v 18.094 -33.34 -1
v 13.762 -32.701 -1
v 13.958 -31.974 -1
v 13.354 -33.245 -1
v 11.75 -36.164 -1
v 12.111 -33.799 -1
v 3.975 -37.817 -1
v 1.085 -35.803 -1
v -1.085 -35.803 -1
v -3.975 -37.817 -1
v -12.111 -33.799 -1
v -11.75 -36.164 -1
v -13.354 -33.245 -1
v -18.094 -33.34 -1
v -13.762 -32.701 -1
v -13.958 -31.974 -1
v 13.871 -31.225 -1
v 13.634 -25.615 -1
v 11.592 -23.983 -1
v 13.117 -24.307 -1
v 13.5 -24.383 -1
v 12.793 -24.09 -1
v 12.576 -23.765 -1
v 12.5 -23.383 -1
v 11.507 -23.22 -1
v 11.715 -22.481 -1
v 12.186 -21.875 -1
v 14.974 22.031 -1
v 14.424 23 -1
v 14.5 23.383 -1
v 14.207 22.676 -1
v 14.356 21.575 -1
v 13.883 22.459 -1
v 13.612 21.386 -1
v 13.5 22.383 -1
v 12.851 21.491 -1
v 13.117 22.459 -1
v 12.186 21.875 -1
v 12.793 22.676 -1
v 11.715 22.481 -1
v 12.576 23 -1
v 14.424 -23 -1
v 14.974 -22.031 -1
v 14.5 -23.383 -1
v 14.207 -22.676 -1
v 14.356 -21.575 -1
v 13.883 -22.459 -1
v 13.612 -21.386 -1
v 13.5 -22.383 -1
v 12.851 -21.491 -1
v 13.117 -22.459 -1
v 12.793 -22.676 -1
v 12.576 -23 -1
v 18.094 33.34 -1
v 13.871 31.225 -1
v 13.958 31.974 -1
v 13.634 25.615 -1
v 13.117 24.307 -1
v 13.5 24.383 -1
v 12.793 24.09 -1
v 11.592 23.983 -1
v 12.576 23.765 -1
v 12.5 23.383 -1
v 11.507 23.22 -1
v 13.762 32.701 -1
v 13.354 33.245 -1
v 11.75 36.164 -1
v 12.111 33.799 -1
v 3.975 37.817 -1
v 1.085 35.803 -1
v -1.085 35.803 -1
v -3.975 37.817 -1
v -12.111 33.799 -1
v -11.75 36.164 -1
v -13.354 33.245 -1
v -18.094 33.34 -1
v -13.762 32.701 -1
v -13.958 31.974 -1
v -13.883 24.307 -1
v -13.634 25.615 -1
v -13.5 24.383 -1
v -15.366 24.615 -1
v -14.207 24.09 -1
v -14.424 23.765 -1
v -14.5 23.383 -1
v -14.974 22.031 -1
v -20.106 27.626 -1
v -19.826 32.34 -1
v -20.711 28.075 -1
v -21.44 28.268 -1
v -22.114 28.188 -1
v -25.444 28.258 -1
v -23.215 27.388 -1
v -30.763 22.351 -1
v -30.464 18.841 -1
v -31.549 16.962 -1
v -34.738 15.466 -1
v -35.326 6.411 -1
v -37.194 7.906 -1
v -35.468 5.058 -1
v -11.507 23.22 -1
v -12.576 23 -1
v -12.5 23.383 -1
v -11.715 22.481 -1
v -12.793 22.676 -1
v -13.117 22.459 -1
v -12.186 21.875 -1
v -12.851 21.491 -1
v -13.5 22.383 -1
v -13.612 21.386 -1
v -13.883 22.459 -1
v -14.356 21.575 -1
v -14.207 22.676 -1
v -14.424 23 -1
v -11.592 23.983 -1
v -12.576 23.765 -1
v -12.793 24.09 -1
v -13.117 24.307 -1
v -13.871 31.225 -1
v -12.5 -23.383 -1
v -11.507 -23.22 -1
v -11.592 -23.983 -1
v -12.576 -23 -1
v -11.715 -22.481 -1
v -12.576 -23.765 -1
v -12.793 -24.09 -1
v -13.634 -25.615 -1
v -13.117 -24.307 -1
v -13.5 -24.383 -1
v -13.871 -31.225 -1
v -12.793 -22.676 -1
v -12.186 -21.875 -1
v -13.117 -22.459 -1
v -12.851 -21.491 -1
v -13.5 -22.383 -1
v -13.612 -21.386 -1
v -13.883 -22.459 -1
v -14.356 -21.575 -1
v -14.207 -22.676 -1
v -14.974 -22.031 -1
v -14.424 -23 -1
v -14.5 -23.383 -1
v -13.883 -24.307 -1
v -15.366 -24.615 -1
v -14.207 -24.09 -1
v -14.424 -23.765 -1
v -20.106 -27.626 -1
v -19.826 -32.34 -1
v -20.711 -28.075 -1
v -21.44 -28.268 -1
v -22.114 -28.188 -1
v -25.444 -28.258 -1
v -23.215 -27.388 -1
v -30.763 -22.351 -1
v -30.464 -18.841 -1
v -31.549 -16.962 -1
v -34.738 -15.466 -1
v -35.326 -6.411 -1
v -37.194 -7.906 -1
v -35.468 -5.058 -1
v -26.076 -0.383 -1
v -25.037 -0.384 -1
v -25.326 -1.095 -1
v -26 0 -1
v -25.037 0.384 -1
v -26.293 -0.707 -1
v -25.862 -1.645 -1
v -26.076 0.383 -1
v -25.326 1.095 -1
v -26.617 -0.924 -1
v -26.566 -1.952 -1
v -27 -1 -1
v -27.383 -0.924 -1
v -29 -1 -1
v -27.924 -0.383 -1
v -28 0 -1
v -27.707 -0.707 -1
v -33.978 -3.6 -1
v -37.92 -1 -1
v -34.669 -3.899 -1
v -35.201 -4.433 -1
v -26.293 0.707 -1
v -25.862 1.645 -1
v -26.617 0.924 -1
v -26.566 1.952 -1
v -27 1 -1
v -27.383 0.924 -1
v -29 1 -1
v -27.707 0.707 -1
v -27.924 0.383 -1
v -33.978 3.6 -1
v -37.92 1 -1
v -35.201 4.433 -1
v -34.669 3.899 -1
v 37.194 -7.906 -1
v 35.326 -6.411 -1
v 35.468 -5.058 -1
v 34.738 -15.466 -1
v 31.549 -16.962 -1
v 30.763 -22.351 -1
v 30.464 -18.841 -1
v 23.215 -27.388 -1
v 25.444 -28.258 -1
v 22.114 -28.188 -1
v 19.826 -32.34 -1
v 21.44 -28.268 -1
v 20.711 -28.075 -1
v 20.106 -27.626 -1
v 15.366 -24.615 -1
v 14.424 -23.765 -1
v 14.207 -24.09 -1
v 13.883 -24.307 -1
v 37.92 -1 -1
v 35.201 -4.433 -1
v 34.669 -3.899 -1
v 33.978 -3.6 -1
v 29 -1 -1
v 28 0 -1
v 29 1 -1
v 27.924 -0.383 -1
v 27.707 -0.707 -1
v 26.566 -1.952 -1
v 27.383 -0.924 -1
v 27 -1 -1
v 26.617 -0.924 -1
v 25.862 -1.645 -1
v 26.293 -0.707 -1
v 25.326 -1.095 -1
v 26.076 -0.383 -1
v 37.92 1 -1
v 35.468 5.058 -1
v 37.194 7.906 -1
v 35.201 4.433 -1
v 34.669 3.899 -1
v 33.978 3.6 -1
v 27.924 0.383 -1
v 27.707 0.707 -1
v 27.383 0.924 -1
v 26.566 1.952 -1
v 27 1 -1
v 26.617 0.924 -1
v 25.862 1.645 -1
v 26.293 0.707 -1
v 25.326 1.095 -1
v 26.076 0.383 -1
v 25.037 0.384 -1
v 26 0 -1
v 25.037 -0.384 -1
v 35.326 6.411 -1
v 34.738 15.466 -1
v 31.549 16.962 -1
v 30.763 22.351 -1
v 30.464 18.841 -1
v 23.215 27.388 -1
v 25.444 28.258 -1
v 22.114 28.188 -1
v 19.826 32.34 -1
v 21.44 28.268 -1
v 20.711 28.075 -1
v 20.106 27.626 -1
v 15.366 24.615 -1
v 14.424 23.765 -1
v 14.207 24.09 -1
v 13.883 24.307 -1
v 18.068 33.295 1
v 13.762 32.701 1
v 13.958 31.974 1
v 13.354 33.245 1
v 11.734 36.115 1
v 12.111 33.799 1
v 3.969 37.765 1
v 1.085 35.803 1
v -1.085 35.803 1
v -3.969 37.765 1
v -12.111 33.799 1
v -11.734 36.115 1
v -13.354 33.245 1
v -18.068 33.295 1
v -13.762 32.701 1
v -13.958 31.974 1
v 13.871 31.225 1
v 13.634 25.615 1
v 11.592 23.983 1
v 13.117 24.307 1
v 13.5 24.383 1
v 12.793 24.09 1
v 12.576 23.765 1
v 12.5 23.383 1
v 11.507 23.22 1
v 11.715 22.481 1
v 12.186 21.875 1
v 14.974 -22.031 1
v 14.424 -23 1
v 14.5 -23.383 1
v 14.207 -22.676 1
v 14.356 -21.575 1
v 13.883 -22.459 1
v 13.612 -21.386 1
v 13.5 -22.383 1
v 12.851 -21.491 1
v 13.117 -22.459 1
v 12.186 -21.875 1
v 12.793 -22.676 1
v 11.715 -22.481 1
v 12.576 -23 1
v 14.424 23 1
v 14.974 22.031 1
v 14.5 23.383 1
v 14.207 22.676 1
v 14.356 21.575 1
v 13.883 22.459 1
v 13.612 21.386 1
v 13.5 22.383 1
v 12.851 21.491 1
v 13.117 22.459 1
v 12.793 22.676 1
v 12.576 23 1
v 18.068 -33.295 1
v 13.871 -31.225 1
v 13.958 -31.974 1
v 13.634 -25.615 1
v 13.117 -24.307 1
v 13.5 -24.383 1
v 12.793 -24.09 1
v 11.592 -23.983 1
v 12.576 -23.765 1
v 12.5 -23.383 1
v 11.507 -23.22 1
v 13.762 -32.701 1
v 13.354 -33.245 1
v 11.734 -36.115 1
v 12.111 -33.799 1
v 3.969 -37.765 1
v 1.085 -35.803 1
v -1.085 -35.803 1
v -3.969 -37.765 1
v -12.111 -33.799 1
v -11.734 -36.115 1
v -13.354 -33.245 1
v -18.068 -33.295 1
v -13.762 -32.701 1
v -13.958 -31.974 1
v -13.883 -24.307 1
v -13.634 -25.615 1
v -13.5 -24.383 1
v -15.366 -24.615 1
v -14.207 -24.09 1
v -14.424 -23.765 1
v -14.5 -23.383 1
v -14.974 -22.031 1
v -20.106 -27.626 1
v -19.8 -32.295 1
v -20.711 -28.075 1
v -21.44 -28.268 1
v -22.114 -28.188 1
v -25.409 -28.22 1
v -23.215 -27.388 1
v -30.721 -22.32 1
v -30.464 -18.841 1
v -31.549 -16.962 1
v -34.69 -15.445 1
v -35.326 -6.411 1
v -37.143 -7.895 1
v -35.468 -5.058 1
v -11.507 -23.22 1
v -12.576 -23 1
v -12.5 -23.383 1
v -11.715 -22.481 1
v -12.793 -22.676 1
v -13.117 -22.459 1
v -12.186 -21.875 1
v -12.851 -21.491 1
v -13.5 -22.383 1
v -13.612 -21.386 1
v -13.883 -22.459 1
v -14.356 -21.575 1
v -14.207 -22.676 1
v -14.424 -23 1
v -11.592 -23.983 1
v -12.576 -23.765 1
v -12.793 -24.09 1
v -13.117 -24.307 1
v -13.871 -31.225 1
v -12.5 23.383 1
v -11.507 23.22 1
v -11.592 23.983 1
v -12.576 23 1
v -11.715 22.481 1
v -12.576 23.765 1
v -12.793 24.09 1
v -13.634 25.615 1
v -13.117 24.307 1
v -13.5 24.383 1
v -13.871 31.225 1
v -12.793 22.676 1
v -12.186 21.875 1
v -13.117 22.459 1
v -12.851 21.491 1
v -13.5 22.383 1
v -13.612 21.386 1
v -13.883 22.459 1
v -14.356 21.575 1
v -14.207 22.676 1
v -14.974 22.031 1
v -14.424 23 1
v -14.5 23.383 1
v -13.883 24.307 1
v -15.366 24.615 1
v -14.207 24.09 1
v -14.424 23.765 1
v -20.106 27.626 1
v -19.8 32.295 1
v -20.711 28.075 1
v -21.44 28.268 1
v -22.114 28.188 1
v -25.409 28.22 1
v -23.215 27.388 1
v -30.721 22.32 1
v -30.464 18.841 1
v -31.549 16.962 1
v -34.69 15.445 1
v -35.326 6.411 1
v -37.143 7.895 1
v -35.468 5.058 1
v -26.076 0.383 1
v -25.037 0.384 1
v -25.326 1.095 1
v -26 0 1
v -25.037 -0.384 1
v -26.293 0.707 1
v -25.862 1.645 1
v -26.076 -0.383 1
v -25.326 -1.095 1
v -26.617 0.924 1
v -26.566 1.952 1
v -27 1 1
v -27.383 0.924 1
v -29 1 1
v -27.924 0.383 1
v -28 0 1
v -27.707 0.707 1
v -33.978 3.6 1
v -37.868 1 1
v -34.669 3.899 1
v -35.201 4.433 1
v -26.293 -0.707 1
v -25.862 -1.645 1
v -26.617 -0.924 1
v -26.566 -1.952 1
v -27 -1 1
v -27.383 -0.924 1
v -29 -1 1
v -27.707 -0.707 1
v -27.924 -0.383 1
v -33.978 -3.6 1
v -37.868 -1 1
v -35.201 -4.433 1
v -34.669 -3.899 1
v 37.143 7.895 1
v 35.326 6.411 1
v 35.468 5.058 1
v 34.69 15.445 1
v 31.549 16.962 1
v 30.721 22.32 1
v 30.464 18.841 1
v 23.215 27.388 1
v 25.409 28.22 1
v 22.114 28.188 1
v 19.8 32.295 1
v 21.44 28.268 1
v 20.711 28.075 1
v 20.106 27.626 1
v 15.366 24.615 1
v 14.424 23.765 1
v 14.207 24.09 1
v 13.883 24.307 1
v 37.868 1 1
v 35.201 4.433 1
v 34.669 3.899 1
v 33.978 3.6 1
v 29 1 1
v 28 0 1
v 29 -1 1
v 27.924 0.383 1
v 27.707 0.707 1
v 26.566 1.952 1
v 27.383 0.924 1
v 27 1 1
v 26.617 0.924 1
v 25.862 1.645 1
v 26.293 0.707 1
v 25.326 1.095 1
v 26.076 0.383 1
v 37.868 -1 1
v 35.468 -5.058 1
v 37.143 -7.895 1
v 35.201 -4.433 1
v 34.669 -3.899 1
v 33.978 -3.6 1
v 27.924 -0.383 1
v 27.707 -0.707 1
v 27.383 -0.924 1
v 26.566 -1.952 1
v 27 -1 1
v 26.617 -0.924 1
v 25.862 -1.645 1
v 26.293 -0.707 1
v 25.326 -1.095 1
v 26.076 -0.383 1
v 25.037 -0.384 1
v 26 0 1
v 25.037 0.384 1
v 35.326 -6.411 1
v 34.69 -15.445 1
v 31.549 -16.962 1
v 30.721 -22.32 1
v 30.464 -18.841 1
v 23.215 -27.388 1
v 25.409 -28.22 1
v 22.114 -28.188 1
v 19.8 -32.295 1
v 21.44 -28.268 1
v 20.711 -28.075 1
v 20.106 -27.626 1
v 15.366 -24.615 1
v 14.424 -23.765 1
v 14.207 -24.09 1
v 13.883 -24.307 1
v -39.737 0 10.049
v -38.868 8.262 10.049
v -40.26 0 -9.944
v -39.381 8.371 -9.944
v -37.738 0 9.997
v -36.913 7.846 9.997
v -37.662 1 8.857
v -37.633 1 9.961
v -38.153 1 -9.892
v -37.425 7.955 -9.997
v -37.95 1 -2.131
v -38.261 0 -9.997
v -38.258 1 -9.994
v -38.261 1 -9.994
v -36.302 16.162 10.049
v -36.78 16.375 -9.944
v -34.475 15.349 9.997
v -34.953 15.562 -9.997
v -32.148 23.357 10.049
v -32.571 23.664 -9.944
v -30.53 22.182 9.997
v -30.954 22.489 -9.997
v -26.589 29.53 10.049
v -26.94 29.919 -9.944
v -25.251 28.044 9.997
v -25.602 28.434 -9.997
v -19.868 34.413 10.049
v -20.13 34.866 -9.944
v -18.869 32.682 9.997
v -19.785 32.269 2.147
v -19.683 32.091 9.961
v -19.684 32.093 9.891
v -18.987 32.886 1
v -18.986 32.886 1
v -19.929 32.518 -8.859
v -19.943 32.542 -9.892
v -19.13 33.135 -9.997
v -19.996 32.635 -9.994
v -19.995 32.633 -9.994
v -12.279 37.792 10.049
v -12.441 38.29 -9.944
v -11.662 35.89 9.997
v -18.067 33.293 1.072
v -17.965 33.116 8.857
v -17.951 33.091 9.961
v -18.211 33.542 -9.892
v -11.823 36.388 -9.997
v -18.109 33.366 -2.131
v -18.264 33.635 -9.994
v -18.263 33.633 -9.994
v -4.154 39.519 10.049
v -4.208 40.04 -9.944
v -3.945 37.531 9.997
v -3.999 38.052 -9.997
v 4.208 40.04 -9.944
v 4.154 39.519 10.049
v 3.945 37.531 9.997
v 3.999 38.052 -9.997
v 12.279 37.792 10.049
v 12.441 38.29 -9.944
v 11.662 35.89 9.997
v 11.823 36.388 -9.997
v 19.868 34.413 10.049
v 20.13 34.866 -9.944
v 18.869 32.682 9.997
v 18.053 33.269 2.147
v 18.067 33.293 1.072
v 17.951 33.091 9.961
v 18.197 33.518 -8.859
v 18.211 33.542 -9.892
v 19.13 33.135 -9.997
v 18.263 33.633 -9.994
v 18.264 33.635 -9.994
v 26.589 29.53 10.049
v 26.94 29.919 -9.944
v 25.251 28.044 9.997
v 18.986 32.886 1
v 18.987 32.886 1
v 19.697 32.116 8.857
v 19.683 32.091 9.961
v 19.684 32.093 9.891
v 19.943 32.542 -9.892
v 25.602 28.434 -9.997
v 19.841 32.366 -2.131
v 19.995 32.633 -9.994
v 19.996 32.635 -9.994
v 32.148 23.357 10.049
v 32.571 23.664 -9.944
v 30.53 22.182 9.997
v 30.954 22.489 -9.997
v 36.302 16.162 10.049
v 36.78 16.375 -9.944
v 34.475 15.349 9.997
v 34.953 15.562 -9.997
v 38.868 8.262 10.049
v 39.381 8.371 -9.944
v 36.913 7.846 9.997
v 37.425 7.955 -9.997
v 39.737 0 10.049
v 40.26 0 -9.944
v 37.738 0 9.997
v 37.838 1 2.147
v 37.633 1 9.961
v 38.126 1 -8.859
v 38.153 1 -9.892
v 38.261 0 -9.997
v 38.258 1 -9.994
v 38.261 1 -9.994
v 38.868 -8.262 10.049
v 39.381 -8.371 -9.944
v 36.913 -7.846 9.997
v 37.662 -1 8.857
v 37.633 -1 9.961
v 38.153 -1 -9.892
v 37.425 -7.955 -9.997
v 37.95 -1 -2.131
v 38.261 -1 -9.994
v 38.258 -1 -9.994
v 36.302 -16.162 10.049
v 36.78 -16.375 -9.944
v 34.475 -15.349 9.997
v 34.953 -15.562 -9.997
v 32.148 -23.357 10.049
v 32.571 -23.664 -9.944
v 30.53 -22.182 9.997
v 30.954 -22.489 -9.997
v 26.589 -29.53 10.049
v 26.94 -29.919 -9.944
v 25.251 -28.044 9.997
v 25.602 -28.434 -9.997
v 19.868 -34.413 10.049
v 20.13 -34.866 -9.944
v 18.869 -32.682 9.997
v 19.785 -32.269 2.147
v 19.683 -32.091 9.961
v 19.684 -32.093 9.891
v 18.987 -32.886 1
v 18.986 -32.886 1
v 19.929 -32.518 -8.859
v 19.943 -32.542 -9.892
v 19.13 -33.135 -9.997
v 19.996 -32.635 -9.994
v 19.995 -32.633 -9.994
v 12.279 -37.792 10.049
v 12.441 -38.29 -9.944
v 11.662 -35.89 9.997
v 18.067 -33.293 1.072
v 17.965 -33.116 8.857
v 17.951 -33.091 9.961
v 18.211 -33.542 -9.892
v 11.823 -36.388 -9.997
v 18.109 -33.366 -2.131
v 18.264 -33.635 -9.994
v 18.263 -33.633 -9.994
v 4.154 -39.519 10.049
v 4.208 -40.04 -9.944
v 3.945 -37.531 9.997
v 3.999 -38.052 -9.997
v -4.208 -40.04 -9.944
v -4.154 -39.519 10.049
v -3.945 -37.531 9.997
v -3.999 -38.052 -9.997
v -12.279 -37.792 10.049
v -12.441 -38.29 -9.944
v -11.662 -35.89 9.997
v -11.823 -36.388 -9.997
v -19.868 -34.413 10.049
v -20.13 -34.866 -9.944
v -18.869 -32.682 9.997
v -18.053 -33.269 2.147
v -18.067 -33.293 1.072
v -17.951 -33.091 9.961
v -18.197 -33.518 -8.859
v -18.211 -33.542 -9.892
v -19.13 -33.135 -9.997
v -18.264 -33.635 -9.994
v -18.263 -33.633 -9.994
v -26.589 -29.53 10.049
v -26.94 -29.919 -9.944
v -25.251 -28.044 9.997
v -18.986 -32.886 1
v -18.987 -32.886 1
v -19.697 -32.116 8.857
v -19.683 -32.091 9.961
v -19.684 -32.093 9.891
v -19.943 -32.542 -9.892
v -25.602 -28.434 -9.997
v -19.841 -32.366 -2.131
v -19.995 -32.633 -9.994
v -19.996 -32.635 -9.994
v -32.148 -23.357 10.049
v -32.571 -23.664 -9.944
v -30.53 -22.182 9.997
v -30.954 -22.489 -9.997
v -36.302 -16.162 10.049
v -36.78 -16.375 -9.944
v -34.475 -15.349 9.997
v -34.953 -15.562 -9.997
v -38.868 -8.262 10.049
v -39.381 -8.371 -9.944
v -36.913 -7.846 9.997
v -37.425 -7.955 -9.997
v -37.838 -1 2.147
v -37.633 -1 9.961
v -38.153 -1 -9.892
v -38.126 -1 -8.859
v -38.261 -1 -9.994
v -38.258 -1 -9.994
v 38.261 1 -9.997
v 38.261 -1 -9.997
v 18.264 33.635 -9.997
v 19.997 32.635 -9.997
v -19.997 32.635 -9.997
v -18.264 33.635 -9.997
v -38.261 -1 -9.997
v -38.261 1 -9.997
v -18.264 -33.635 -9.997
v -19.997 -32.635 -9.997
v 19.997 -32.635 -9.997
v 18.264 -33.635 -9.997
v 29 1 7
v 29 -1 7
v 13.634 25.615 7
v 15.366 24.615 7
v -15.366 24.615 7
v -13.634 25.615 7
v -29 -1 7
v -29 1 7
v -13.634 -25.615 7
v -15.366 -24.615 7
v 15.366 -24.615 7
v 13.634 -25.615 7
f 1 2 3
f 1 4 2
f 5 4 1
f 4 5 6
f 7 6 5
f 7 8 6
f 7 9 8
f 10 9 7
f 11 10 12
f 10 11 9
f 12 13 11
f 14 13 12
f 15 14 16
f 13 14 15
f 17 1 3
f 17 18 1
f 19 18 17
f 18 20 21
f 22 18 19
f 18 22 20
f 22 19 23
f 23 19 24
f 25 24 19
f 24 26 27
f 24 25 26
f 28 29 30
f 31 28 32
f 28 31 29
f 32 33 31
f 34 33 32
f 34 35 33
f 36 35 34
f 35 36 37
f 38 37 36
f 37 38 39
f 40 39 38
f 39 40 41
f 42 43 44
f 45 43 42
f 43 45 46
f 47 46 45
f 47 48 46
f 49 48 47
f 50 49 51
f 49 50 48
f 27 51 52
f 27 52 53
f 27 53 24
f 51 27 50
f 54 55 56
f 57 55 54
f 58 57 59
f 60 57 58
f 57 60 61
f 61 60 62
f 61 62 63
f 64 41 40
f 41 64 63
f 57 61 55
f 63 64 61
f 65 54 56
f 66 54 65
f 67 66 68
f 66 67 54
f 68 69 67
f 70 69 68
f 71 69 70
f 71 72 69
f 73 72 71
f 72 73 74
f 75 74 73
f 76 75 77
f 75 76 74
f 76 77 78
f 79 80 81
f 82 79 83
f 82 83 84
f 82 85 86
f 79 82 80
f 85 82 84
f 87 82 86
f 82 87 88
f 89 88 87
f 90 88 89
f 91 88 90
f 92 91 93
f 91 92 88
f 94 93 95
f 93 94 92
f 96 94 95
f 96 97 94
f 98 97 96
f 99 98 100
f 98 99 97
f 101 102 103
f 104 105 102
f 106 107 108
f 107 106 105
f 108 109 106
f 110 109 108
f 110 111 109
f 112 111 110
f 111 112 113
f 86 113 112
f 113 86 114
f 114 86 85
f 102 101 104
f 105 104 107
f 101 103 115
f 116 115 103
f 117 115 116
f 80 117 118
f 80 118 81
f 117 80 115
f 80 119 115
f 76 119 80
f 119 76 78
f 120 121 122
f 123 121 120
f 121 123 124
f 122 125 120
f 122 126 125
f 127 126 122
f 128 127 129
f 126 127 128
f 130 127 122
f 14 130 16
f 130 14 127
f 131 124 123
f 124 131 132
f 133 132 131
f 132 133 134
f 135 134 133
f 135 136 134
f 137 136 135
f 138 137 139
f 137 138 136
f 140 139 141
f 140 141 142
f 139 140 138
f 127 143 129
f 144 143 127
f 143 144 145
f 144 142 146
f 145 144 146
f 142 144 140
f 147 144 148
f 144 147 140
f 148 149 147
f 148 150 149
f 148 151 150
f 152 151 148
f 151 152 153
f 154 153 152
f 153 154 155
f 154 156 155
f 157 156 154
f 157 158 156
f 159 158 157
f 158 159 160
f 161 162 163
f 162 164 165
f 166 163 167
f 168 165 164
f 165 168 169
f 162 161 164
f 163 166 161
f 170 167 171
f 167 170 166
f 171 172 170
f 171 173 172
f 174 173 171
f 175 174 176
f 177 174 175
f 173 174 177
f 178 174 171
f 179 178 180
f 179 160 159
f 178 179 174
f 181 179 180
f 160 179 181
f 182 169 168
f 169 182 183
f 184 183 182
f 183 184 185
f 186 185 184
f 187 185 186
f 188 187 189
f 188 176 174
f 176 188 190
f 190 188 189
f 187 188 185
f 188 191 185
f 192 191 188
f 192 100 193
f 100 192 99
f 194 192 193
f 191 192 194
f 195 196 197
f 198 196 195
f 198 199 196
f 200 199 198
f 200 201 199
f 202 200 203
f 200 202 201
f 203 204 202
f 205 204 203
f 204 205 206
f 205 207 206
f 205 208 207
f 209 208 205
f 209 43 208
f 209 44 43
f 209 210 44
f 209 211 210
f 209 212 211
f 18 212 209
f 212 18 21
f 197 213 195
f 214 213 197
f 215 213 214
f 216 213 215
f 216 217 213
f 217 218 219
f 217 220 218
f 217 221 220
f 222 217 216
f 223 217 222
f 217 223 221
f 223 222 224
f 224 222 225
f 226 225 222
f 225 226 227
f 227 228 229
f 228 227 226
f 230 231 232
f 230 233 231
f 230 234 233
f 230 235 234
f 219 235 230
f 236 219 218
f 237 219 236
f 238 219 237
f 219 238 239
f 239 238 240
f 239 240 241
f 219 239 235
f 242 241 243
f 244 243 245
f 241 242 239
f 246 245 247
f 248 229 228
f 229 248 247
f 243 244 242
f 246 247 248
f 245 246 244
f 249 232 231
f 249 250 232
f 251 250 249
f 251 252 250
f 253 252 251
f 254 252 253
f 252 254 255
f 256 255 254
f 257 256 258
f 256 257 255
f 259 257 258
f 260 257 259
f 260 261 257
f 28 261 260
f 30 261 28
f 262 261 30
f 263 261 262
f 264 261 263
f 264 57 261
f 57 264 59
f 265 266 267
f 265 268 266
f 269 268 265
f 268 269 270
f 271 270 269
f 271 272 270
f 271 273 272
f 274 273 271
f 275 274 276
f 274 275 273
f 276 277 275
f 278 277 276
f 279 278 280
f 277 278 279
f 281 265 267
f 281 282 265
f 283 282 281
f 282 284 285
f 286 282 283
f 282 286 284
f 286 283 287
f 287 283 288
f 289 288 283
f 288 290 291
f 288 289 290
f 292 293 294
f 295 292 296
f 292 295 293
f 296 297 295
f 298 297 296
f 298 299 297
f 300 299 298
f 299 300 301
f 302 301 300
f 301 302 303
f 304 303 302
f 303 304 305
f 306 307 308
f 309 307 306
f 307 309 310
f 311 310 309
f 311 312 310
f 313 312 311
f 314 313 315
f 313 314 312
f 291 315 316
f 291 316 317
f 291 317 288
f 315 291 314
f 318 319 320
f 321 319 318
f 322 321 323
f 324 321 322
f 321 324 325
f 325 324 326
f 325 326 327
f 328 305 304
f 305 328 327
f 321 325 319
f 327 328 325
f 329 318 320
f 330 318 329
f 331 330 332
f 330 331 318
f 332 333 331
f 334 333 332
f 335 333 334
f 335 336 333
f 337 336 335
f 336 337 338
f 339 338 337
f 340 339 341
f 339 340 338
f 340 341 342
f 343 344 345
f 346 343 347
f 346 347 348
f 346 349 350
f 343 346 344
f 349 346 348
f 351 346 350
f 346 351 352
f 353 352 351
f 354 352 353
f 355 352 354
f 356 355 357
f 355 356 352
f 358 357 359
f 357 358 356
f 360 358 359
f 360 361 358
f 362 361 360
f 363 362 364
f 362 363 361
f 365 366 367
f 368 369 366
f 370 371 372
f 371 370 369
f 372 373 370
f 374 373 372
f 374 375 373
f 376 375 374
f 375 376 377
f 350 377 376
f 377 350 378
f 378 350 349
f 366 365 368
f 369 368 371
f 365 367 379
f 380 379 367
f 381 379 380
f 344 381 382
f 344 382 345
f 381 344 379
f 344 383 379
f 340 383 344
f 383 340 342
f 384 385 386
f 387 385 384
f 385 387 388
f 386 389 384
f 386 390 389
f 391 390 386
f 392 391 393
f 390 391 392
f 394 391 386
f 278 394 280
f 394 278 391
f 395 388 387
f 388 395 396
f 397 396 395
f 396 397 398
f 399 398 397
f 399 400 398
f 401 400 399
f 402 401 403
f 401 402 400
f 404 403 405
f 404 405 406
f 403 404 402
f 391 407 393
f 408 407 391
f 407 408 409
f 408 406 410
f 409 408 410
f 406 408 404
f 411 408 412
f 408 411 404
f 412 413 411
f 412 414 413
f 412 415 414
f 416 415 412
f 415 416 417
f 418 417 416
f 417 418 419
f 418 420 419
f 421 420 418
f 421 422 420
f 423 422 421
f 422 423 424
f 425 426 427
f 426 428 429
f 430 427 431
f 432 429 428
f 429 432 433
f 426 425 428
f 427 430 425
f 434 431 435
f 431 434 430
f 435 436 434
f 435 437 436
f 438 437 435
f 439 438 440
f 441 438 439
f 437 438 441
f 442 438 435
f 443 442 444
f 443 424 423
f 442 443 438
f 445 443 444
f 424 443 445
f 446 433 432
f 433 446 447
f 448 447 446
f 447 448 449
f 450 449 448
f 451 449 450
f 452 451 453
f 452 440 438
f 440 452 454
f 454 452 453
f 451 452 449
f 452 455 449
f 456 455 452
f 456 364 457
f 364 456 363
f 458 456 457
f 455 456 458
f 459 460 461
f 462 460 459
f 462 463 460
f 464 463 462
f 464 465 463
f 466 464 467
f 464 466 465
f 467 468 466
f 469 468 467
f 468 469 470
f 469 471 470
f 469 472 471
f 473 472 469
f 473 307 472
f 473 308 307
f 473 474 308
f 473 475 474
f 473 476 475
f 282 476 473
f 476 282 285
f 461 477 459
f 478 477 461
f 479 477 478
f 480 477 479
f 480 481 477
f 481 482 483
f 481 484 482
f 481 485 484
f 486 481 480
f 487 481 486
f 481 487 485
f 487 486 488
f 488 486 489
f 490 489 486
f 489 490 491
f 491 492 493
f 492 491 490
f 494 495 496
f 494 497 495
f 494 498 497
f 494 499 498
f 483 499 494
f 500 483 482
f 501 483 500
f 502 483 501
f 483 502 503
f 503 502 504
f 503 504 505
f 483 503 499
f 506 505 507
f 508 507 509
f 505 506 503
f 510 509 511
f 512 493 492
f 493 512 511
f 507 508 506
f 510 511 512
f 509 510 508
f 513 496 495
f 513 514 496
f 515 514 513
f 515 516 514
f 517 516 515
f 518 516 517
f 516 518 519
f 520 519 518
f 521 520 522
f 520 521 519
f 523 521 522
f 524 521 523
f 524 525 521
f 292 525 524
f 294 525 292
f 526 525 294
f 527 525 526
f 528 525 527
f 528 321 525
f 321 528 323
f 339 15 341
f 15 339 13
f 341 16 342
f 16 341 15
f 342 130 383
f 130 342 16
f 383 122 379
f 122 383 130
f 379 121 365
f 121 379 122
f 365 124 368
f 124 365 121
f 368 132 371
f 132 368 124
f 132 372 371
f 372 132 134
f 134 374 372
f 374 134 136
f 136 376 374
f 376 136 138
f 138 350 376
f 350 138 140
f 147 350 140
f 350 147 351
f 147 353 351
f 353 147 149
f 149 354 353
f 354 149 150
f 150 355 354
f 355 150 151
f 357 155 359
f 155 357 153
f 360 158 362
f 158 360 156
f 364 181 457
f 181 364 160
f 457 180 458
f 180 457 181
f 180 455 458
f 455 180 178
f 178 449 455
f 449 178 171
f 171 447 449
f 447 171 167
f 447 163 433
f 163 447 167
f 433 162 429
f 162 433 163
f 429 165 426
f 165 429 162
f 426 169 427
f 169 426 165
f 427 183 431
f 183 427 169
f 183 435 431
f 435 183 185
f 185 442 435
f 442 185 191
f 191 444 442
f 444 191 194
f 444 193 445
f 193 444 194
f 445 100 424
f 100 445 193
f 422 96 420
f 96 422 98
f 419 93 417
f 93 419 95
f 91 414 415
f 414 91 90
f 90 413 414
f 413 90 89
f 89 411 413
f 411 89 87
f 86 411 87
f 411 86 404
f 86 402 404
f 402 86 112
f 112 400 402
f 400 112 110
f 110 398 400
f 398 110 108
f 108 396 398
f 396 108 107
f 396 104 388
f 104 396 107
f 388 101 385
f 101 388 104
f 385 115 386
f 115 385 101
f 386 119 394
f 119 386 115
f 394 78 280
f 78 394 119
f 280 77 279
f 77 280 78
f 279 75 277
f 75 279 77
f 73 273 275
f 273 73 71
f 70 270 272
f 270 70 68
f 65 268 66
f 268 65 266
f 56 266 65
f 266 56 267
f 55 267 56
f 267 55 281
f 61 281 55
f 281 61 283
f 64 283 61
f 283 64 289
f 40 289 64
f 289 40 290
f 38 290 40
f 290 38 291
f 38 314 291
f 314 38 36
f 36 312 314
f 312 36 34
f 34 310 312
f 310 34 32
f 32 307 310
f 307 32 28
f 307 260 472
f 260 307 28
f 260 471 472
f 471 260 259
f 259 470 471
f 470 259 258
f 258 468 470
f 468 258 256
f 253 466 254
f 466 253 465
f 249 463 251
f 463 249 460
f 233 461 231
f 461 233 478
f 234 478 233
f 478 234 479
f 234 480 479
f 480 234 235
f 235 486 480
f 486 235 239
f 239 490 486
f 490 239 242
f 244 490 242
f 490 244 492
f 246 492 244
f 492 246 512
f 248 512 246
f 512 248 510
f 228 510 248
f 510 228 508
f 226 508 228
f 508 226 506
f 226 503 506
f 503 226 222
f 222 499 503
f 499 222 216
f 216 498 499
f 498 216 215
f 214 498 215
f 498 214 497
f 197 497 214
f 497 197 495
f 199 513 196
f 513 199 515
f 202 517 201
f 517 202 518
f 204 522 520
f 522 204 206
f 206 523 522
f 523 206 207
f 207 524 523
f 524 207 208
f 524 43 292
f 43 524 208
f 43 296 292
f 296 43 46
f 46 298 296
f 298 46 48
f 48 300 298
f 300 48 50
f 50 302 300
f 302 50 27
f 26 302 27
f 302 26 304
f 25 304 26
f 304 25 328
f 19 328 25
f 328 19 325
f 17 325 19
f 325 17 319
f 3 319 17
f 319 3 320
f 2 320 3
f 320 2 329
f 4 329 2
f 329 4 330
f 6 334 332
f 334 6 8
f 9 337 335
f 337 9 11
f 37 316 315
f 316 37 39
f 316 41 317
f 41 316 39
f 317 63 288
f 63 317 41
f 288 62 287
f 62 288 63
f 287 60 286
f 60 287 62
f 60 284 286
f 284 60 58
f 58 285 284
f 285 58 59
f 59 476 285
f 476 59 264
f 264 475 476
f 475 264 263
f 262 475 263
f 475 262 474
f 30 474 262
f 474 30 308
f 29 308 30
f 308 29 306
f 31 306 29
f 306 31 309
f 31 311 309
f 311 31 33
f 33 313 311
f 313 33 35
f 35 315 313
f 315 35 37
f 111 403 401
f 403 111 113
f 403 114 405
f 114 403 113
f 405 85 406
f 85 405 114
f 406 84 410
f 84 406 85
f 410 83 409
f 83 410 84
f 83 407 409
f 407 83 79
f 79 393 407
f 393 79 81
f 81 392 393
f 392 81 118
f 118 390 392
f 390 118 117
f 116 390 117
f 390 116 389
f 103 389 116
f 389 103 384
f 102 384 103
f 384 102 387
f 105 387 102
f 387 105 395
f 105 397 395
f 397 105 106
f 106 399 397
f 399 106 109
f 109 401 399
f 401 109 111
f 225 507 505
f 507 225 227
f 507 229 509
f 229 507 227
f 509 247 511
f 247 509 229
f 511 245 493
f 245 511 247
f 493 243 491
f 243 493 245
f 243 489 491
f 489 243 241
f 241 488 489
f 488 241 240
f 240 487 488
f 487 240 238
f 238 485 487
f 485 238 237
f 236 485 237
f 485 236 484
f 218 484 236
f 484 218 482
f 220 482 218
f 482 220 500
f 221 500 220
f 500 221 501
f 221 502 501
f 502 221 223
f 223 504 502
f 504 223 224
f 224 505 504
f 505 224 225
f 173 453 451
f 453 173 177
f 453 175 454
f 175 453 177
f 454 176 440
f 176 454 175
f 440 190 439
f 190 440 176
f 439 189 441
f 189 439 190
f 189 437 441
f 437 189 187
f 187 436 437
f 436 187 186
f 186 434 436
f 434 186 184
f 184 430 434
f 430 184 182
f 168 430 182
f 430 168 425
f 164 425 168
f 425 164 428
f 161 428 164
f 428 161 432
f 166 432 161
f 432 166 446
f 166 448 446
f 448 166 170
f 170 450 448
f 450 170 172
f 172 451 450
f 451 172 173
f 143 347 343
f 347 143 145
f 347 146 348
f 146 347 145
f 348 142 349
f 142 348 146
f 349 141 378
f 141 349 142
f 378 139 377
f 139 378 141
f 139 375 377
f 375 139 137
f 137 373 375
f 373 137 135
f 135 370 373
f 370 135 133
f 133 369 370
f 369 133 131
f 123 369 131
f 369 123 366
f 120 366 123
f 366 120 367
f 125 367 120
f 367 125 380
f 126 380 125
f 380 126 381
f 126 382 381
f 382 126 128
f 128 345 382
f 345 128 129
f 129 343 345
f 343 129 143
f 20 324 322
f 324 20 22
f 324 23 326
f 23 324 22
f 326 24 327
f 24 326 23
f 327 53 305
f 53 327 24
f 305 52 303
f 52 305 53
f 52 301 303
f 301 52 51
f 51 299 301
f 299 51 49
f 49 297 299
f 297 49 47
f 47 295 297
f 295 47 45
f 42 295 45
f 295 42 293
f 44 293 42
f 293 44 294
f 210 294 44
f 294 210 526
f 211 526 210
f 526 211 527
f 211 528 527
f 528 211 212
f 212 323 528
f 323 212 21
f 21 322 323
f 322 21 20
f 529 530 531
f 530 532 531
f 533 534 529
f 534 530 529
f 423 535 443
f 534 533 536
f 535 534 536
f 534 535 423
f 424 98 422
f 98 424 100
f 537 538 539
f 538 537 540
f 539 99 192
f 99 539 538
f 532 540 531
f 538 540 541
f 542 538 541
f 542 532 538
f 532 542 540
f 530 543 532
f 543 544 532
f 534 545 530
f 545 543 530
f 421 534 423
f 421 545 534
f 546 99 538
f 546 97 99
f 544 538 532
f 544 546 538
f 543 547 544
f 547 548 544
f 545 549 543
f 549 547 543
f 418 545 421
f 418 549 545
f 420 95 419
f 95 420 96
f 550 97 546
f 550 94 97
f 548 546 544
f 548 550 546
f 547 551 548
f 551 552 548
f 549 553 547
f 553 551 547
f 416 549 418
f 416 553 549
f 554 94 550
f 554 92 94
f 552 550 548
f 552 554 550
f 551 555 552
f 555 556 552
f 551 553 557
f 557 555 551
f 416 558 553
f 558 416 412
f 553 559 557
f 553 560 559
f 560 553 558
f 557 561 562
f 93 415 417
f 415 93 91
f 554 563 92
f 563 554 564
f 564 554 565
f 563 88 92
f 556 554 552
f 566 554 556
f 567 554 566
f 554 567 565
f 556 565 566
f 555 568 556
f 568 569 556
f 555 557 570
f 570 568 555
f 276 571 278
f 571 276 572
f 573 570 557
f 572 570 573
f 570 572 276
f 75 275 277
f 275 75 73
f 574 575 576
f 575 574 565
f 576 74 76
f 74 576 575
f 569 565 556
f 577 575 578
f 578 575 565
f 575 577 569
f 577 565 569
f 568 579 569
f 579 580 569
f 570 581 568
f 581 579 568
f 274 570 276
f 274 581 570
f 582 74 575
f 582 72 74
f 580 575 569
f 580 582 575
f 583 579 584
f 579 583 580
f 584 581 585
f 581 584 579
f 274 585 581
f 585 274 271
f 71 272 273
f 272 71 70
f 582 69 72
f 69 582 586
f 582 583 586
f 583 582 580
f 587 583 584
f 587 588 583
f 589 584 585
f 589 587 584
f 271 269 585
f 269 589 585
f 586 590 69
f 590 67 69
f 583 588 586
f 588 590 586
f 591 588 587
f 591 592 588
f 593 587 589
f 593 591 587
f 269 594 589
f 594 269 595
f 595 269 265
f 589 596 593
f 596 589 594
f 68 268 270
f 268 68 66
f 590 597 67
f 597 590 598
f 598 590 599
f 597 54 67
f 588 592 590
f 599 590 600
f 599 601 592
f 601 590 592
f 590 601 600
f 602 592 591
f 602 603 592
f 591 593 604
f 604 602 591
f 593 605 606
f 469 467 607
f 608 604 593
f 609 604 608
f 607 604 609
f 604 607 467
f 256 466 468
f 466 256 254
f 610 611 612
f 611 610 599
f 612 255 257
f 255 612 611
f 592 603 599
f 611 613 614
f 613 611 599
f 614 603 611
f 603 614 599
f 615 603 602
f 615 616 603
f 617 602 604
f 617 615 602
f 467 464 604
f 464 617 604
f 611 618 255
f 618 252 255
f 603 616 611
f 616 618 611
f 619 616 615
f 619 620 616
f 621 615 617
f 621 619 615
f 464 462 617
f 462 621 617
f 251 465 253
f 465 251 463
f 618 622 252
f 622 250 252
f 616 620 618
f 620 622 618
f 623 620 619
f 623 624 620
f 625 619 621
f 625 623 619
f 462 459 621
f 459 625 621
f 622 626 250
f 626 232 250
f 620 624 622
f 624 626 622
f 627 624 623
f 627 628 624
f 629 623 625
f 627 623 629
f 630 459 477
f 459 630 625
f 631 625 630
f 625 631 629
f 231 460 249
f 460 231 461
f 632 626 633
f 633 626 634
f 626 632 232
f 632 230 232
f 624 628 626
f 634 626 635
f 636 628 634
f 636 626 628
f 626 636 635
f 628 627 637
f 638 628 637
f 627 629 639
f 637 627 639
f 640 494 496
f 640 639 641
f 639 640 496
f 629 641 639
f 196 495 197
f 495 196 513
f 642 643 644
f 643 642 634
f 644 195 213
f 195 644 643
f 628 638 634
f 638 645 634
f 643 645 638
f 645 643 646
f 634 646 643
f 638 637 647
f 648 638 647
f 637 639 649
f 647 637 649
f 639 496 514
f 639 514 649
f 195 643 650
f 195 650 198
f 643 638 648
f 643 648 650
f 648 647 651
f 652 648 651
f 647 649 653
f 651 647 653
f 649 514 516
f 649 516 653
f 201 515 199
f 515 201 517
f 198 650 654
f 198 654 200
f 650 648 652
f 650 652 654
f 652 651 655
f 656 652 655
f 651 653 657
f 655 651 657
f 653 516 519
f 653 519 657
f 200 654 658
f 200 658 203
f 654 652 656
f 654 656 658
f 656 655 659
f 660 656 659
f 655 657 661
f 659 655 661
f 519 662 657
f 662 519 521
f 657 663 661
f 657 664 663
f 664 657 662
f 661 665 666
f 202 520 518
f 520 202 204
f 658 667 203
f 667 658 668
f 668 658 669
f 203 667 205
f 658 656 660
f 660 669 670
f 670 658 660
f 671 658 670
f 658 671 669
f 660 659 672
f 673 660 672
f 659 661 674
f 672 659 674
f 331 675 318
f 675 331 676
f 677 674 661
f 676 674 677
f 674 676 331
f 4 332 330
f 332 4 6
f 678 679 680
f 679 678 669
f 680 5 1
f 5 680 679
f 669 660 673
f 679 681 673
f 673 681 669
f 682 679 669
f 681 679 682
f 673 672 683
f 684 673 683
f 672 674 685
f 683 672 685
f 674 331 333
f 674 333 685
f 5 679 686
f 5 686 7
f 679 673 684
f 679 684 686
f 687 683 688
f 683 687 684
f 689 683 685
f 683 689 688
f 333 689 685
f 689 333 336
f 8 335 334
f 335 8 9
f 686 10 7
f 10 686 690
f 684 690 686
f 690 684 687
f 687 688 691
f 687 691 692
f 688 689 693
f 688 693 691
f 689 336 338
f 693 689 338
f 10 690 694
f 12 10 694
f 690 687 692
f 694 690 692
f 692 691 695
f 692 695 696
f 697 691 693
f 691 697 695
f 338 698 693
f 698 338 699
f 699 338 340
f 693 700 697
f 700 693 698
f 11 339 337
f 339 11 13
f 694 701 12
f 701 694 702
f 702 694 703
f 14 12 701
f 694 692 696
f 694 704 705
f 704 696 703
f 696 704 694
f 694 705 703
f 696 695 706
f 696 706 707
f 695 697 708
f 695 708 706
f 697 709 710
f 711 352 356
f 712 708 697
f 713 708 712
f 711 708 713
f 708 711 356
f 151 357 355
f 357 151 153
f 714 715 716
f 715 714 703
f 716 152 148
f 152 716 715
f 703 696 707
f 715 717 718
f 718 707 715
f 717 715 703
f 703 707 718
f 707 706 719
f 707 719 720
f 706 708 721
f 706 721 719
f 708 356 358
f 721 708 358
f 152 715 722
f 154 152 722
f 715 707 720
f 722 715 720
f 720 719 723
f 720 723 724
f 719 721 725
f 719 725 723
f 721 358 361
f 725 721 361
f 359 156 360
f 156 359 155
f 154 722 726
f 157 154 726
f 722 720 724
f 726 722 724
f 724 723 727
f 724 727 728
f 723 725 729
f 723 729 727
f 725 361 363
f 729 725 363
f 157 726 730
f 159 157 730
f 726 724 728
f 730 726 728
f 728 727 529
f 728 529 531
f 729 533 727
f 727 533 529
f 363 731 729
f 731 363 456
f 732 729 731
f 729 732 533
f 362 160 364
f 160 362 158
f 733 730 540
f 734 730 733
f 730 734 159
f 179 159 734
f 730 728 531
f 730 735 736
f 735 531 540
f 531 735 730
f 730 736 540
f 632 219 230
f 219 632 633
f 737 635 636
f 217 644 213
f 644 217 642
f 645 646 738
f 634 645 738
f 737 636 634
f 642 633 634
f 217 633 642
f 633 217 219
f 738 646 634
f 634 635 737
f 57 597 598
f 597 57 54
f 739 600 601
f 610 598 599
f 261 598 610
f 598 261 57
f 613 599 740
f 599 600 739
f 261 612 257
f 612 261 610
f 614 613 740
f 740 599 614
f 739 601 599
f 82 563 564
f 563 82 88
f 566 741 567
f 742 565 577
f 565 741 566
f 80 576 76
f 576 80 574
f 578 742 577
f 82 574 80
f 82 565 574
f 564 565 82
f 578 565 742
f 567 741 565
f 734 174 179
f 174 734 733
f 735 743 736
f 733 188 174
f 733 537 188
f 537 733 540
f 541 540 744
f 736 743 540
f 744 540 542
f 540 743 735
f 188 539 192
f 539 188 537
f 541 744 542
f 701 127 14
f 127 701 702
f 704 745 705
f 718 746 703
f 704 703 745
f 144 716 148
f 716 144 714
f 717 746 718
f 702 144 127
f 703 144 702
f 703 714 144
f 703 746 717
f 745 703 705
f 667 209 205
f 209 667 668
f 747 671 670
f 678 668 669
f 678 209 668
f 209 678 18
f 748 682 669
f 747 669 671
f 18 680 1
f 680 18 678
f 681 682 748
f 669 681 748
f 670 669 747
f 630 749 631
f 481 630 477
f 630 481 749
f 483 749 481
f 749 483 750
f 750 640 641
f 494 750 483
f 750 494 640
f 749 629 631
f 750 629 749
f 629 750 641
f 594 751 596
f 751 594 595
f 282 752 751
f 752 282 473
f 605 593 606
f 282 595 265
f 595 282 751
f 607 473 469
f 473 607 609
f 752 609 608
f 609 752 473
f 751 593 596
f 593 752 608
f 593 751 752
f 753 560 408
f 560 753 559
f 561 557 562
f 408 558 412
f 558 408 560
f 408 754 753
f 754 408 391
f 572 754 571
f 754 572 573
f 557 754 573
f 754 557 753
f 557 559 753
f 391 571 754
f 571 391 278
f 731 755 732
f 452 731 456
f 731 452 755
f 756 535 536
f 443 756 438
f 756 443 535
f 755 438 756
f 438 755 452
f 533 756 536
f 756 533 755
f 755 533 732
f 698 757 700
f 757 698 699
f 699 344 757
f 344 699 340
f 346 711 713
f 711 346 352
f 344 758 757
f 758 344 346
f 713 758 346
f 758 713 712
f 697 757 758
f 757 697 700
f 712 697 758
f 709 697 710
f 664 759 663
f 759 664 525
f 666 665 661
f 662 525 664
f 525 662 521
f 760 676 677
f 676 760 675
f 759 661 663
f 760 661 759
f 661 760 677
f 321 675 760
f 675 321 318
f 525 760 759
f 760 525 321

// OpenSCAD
// Generated by Parametrix
ca_vaxis_holder_facePetal_0 = [ [ 37.9731, 0.0000 ],[ 35.0826, 14.5317 ],[ 26.8511, 26.8511 ],[ 14.5317, 35.0826 ],[ 0.0000, 37.9731 ],[ -14.5317, 35.0826 ],[ -26.8511, 26.8511 ],[ -35.0826, 14.5317 ],[ -37.9731, 0.0000 ],[ -35.0826, -14.5317 ],[ -26.8511, -26.8511 ],[ -14.5317, -35.0826 ],[ -0.0000, -37.9731 ],[ 14.5317, -35.0826 ],[ 26.8511, -26.8511 ],[ 35.0826, -14.5317 ],[ 37.9731, 0.0000 ] ];
cb_vaxis_holder_facePetal_0 = [  0, 1, 2, 3, 4, 5, 6, 7, 8, 9, 10, 11, 12, 13, 14, 15, 16 ];
ca_vaxis_holder_facePetal_1 = [ [ 33.9776, -3.6000 ],[ 26.5660, -1.9523 ],[ 25.8624, -1.6450 ],[ 25.3265, -1.0951 ],[ 25.0372, -0.3839 ],[ 25.0372, 0.3839 ],[ 25.3265, 1.0951 ],[ 25.8624, 1.6450 ],[ 26.5660, 1.9523 ],[ 33.9776, 3.6000 ],[ 34.6692, 3.8991 ],[ 35.2010, 4.4329 ],[ 35.4975, 5.1256 ],[ 35.5167, 5.8789 ],[ 31.1769, 18.0000 ],[ 22.8497, 27.8189 ],[ 22.1877, 28.1790 ],[ 21.4395, 28.2685 ],[ 20.7113, 28.0748 ],[ 20.1065, 27.6255 ],[ 14.9738, 22.0307 ],[ 14.3558, 21.5750 ],[ 13.6116, 21.3858 ],[ 12.8511, 21.4909 ],[ 12.1861, 21.8748 ],[ 11.7148, 22.4809 ],[ 11.5066, 23.2200 ],[ 11.5922, 23.9830 ],[ 13.8711, 31.2254 ],[ 13.9579, 31.9740 ],[ 13.7615, 32.7014 ],[ 13.3098, 33.3046 ],[ 12.6671, 33.6979 ],[ 0.0000, 36.0000 ],[ -12.6671, 33.6979 ],[ -13.3098, 33.3046 ],[ -13.7615, 32.7014 ],[ -13.9579, 31.9740 ],[ -13.8711, 31.2254 ],[ -11.5922, 23.9830 ],[ -11.5066, 23.2200 ],[ -11.7148, 22.4809 ],[ -12.1861, 21.8748 ],[ -12.8511, 21.4909 ],[ -13.6116, 21.3858 ],[ -14.3558, 21.5750 ],[ -14.9738, 22.0307 ],[ -20.1065, 27.6255 ],[ -20.7113, 28.0748 ],[ -21.4395, 28.2685 ],[ -22.1877, 28.1790 ],[ -22.8497, 27.8189 ],[ -31.1769, 18.0000 ],[ -35.5167, 5.8789 ],[ -35.4975, 5.1256 ],[ -35.2010, 4.4329 ],[ -34.6692, 3.8991 ],[ -33.9776, 3.6000 ],[ -26.5660, 1.9523 ],[ -25.8624, 1.6450 ],[ -25.3265, 1.0951 ],[ -25.0372, 0.3839 ],[ -25.0372, -0.3839 ],[ -25.3265, -1.0951 ],[ -25.8624, -1.6450 ],[ -26.5660, -1.9523 ],[ -33.9776, -3.6000 ],[ -34.6692, -3.8991 ],[ -35.2010, -4.4329 ],[ -35.4975, -5.1256 ],[ -35.5167, -5.8789 ],[ -31.1769, -18.0000 ],[ -22.8497, -27.8189 ],[ -22.1877, -28.1790 ],[ -21.4395, -28.2685 ],[ -20.7113, -28.0748 ],[ -20.1065, -27.6255 ],[ -14.9738, -22.0307 ],[ -14.3558, -21.5750 ],[ -13.6116, -21.3858 ],[ -12.8511, -21.4909 ],[ -12.1861, -21.8748 ],[ -11.7148, -22.4809 ],[ -11.5066, -23.2200 ],[ -11.5922, -23.9830 ],[ -13.8711, -31.2254 ],[ -13.9579, -31.9740 ],[ -13.7615, -32.7014 ],[ -13.3098, -33.3046 ],[ -12.6671, -33.6979 ],[ 0.0000, -36.0000 ],[ 12.6671, -33.6979 ],[ 13.3098, -33.3046 ],[ 13.7615, -32.7014 ],[ 13.9579, -31.9740 ],[ 13.8711, -31.2254 ],[ 11.5922, -23.9830 ],[ 11.5066, -23.2200 ],[ 11.7148, -22.4809 ],[ 12.1861, -21.8748 ],[ 12.8511, -21.4909 ],[ 13.6116, -21.3858 ],[ 14.3558, -21.5750 ],[ 14.9738, -22.0307 ],[ 20.1065, -27.6255 ],[ 20.7113, -28.0748 ],[ 21.4395, -28.2685 ],[ 22.1877, -28.1790 ],[ 22.8497, -27.8189 ],[ 31.1769, -18.0000 ],[ 35.5167, -5.8789 ],[ 35.4975, -5.1256 ],[ 35.2010, -4.4329 ],[ 34.6692, -3.8991 ],[ 33.9776, -3.6000 ] ];
cb_vaxis_holder_facePetal_1 = [  17, 18, 19, 20, 21, 22, 23, 24, 25, 26, 27, 28, 29, 30, 31, 32, 33, 34, 35, 36, 37, 38, 39, 40, 41, 42, 43, 44, 45, 46, 47, 48, 49, 50, 51, 52, 53, 54, 55, 56, 57, 58, 59, 60, 61, 62, 63, 64, 65, 66, 67, 68, 69, 70, 71, 72, 73, 74, 75, 76, 77, 78, 79, 80, 81, 82, 83, 84, 85, 86, 87, 88, 89, 90, 91, 92, 93, 94, 95, 96, 97, 98, 99, 100, 101, 102, 103, 104, 105, 106, 107, 108, 109, 110, 111, 112, 113, 114, 115, 116, 117, 118, 119, 120, 121, 122, 123, 124, 125, 126, 127, 128, 129, 130, 131 ];
ca_vaxis_holder_facePetal_2 = [ [ 28.0000, 0.0000 ],[ 27.9239, 0.3827 ],[ 27.7071, 0.7071 ],[ 27.3827, 0.9239 ],[ 27.0000, 1.0000 ],[ 26.6173, 0.9239 ],[ 26.2929, 0.7071 ],[ 26.0761, 0.3827 ],[ 26.0000, 0.0000 ],[ 26.0761, -0.3827 ],[ 26.2929, -0.7071 ],[ 26.6173, -0.9239 ],[ 27.0000, -1.0000 ],[ 27.3827, -0.9239 ],[ 27.7071, -0.7071 ],[ 27.9239, -0.3827 ],[ 28.0000, 0.0000 ] ];
cb_vaxis_holder_facePetal_2 = [  132, 133, 134, 135, 136, 137, 138, 139, 140, 141, 142, 143, 144, 145, 146, 147, 148 ];
ca_vaxis_holder_facePetal_3 = [ [ 14.5000, 23.3827 ],[ 14.4239, 23.7654 ],[ 14.2071, 24.0898 ],[ 13.8827, 24.3066 ],[ 13.5000, 24.3827 ],[ 13.1173, 24.3066 ],[ 12.7929, 24.0898 ],[ 12.5761, 23.7654 ],[ 12.5000, 23.3827 ],[ 12.5761, 23.0000 ],[ 12.7929, 22.6756 ],[ 13.1173, 22.4588 ],[ 13.5000, 22.3827 ],[ 13.8827, 22.4588 ],[ 14.2071, 22.6756 ],[ 14.4239, 23.0000 ],[ 14.5000, 23.3827 ] ];
cb_vaxis_holder_facePetal_3 = [  149, 150, 151, 152, 153, 154, 155, 156, 157, 158, 159, 160, 161, 162, 163, 164, 165 ];
ca_vaxis_holder_facePetal_4 = [ [ -12.5000, 23.3827 ],[ -12.5761, 23.7654 ],[ -12.7929, 24.0898 ],[ -13.1173, 24.3066 ],[ -13.5000, 24.3827 ],[ -13.8827, 24.3066 ],[ -14.2071, 24.0898 ],[ -14.4239, 23.7654 ],[ -14.5000, 23.3827 ],[ -14.4239, 23.0000 ],[ -14.2071, 22.6756 ],[ -13.8827, 22.4588 ],[ -13.5000, 22.3827 ],[ -13.1173, 22.4588 ],[ -12.7929, 22.6756 ],[ -12.5761, 23.0000 ],[ -12.5000, 23.3827 ] ];
cb_vaxis_holder_facePetal_4 = [  166, 167, 168, 169, 170, 171, 172, 173, 174, 175, 176, 177, 178, 179, 180, 181, 182 ];
ca_vaxis_holder_facePetal_5 = [ [ -26.0000, 0.0000 ],[ -26.0761, 0.3827 ],[ -26.2929, 0.7071 ],[ -26.6173, 0.9239 ],[ -27.0000, 1.0000 ],[ -27.3827, 0.9239 ],[ -27.7071, 0.7071 ],[ -27.9239, 0.3827 ],[ -28.0000, 0.0000 ],[ -27.9239, -0.3827 ],[ -27.7071, -0.7071 ],[ -27.3827, -0.9239 ],[ -27.0000, -1.0000 ],[ -26.6173, -0.9239 ],[ -26.2929, -0.7071 ],[ -26.0761, -0.3827 ],[ -26.0000, 0.0000 ] ];
cb_vaxis_holder_facePetal_5 = [  183, 184, 185, 186, 187, 188, 189, 190, 191, 192, 193, 194, 195, 196, 197, 198, 199 ];
ca_vaxis_holder_facePetal_6 = [ [ -12.5000, -23.3827 ],[ -12.5761, -23.0000 ],[ -12.7929, -22.6756 ],[ -13.1173, -22.4588 ],[ -13.5000, -22.3827 ],[ -13.8827, -22.4588 ],[ -14.2071, -22.6756 ],[ -14.4239, -23.0000 ],[ -14.5000, -23.3827 ],[ -14.4239, -23.7654 ],[ -14.2071, -24.0898 ],[ -13.8827, -24.3066 ],[ -13.5000, -24.3827 ],[ -13.1173, -24.3066 ],[ -12.7929, -24.0898 ],[ -12.5761, -23.7654 ],[ -12.5000, -23.3827 ] ];
cb_vaxis_holder_facePetal_6 = [  200, 201, 202, 203, 204, 205, 206, 207, 208, 209, 210, 211, 212, 213, 214, 215, 216 ];
ca_vaxis_holder_facePetal_7 = [ [ 14.5000, -23.3827 ],[ 14.4239, -23.0000 ],[ 14.2071, -22.6756 ],[ 13.8827, -22.4588 ],[ 13.5000, -22.3827 ],[ 13.1173, -22.4588 ],[ 12.7929, -22.6756 ],[ 12.5761, -23.0000 ],[ 12.5000, -23.3827 ],[ 12.5761, -23.7654 ],[ 12.7929, -24.0898 ],[ 13.1173, -24.3066 ],[ 13.5000, -24.3827 ],[ 13.8827, -24.3066 ],[ 14.2071, -24.0898 ],[ 14.4239, -23.7654 ],[ 14.5000, -23.3827 ] ];
cb_vaxis_holder_facePetal_7 = [  217, 218, 219, 220, 221, 222, 223, 224, 225, 226, 227, 228, 229, 230, 231, 232, 233 ];
a_vaxis_holder_facePetal = concat(ca_vaxis_holder_facePetal_0, ca_vaxis_holder_facePetal_1, ca_vaxis_holder_facePetal_2, ca_vaxis_holder_facePetal_3, ca_vaxis_holder_facePetal_4, ca_vaxis_holder_facePetal_5, ca_vaxis_holder_facePetal_6, ca_vaxis_holder_facePetal_7);
b_vaxis_holder_facePetal = [cb_vaxis_holder_facePetal_0, cb_vaxis_holder_facePetal_1, cb_vaxis_holder_facePetal_2, cb_vaxis_holder_facePetal_3, cb_vaxis_holder_facePetal_4, cb_vaxis_holder_facePetal_5, cb_vaxis_holder_facePetal_6, cb_vaxis_holder_facePetal_7];
ca_vaxis_holder_faceOuter_0 = [ [ 36.0000, -1.0000 ],[ 38.0255, -1.0000 ],[ 38.2611, -9.9966 ],[ 40.2604, -9.9442 ],[ 39.7369, 10.0489 ],[ 37.7375, 9.9966 ],[ 37.9731, 1.0000 ],[ 36.0000, 1.0000 ],[ 36.0000, -1.0000 ] ];
cb_vaxis_holder_faceOuter_0 = [  0, 1, 2, 3, 4, 5, 6, 7, 8 ];
a_vaxis_holder_faceOuter = concat(ca_vaxis_holder_faceOuter_0);
b_vaxis_holder_faceOuter = [cb_vaxis_holder_faceOuter_0];
ca_vaxis_holder_faceButtress1_0 = [ [ 29.0000, -1.0000 ],[ 38.0255, -1.0000 ],[ 38.2611, -9.9966 ],[ 29.0000, -1.0000 ] ];
cb_vaxis_holder_faceButtress1_0 = [  0, 1, 2, 3 ];
a_vaxis_holder_faceButtress1 = concat(ca_vaxis_holder_faceButtress1_0);
b_vaxis_holder_faceButtress1 = [cb_vaxis_holder_faceButtress1_0];
ca_vaxis_holder_faceButtress2_0 = [ [ 29.0000, 1.0000 ],[ 37.9731, 1.0000 ],[ 37.7375, 9.9966 ],[ 29.0000, 7.0000 ],[ 29.0000, 1.0000 ] ];
cb_vaxis_holder_faceButtress2_0 = [  0, 1, 2, 3, 4 ];
a_vaxis_holder_faceButtress2 = concat(ca_vaxis_holder_faceButtress2_0);
b_vaxis_holder_faceButtress2 = [cb_vaxis_holder_faceButtress2_0];

module subpax_vaxis_holder_outer () {
	translate( [ 0, 0, 0 ])
		rotate( [ 0, 0, 0 ])
			   rotate_extrude() polygon(a_vaxis_holder_faceOuter, b_vaxis_holder_faceOuter);
}

module subpax_vaxis_holder_petal () {
	translate( [ 0, 0, -1 ])
		rotate( [ 0, 0, 0 ])
			   linear_extrude(height = 2) polygon(a_vaxis_holder_facePetal, b_vaxis_holder_facePetal);
}

module subpax_vaxis_holder_b1_0 () {
	translate( [ 0, 1, 0 ])
		rotate( [ 90, 0, 0 ])
			   linear_extrude(height = 2) polygon(a_vaxis_holder_faceButtress1, b_vaxis_holder_faceButtress1);
}

module subpax_vaxis_holder_b1_1 () {
	translate( [ -0.8660254037844386, 0.5000000000000001, 0 ])
		rotate( [ 90, 0, 59.99999999999999 ])
			   linear_extrude(height = 2) polygon(a_vaxis_holder_faceButtress1, b_vaxis_holder_faceButtress1);
}

module subpax_vaxis_holder_b1_2 () {
	translate( [ -0.8660254037844387, -0.4999999999999998, 0 ])
		rotate( [ 90, 0, 120.00000000000001 ])
			   linear_extrude(height = 2) polygon(a_vaxis_holder_faceButtress1, b_vaxis_holder_faceButtress1);
}

module subpax_vaxis_holder_b1_3 () {
	translate( [ -1.2246467991473532e-16, -1, 0 ])
		rotate( [ 90, 0, 180 ])
			   linear_extrude(height = 2) polygon(a_vaxis_holder_faceButtress1, b_vaxis_holder_faceButtress1);
}

module subpax_vaxis_holder_b1_4 () {
	translate( [ 0.8660254037844385, -0.5000000000000004, 0 ])
		rotate( [ 90, 0, -120.00000000000004 ])
			   linear_extrude(height = 2) polygon(a_vaxis_holder_faceButtress1, b_vaxis_holder_faceButtress1);
}

module subpax_vaxis_holder_b1_5 () {
	translate( [ 0.866025403784439, 0.49999999999999933, 0 ])
		rotate( [ 90, 0, -60.00000000000004 ])
			   linear_extrude(height = 2) polygon(a_vaxis_holder_faceButtress1, b_vaxis_holder_faceButtress1);
}

module subpax_vaxis_holder_b2_0 () {
	translate( [ 0, 1, 0 ])
		rotate( [ 90, 0, 0 ])
			   linear_extrude(height = 2) polygon(a_vaxis_holder_faceButtress2, b_vaxis_holder_faceButtress2);
}

module subpax_vaxis_holder_b2_1 () {
	translate( [ -0.8660254037844386, 0.5000000000000001, 0 ])
		rotate( [ 90, 0, 59.99999999999999 ])
			   linear_extrude(height = 2) polygon(a_vaxis_holder_faceButtress2, b_vaxis_holder_faceButtress2);
}

module subpax_vaxis_holder_b2_2 () {
	translate( [ -0.8660254037844387, -0.4999999999999998, 0 ])
		rotate( [ 90, 0, 120.00000000000001 ])
			   linear_extrude(height = 2) polygon(a_vaxis_holder_faceButtress2, b_vaxis_holder_faceButtress2);
}

module subpax_vaxis_holder_b2_3 () {
	translate( [ -1.2246467991473532e-16, -1, 0 ])
		rotate( [ 90, 0, 180 ])
			   linear_extrude(height = 2) polygon(a_vaxis_holder_faceButtress2, b_vaxis_holder_faceButtress2);
}

module subpax_vaxis_holder_b2_4 () {
	translate( [ 0.8660254037844385, -0.5000000000000004, 0 ])
		rotate( [ 90, 0, -120.00000000000004 ])
			   linear_extrude(height = 2) polygon(a_vaxis_holder_faceButtress2, b_vaxis_holder_faceButtress2);
}

module subpax_vaxis_holder_b2_5 () {
	translate( [ 0.866025403784439, 0.49999999999999933, 0 ])
		rotate( [ 90, 0, -60.00000000000004 ])
			   linear_extrude(height = 2) polygon(a_vaxis_holder_faceButtress2, b_vaxis_holder_faceButtress2);
}

module pax_vaxis_holder () {
	union () {
		subpax_vaxis_holder_petal();
subpax_vaxis_holder_outer();
subpax_vaxis_holder_b1_0();
subpax_vaxis_holder_b1_1();
subpax_vaxis_holder_b1_2();
subpax_vaxis_holder_b1_3();
subpax_vaxis_holder_b1_4();
subpax_vaxis_holder_b1_5();
subpax_vaxis_holder_b2_0();
subpax_vaxis_holder_b2_1();
subpax_vaxis_holder_b2_2();
subpax_vaxis_holder_b2_3();
subpax_vaxis_holder_b2_4();
subpax_vaxis_holder_b2_5();
	}
}

pax_vaxis_holder();
